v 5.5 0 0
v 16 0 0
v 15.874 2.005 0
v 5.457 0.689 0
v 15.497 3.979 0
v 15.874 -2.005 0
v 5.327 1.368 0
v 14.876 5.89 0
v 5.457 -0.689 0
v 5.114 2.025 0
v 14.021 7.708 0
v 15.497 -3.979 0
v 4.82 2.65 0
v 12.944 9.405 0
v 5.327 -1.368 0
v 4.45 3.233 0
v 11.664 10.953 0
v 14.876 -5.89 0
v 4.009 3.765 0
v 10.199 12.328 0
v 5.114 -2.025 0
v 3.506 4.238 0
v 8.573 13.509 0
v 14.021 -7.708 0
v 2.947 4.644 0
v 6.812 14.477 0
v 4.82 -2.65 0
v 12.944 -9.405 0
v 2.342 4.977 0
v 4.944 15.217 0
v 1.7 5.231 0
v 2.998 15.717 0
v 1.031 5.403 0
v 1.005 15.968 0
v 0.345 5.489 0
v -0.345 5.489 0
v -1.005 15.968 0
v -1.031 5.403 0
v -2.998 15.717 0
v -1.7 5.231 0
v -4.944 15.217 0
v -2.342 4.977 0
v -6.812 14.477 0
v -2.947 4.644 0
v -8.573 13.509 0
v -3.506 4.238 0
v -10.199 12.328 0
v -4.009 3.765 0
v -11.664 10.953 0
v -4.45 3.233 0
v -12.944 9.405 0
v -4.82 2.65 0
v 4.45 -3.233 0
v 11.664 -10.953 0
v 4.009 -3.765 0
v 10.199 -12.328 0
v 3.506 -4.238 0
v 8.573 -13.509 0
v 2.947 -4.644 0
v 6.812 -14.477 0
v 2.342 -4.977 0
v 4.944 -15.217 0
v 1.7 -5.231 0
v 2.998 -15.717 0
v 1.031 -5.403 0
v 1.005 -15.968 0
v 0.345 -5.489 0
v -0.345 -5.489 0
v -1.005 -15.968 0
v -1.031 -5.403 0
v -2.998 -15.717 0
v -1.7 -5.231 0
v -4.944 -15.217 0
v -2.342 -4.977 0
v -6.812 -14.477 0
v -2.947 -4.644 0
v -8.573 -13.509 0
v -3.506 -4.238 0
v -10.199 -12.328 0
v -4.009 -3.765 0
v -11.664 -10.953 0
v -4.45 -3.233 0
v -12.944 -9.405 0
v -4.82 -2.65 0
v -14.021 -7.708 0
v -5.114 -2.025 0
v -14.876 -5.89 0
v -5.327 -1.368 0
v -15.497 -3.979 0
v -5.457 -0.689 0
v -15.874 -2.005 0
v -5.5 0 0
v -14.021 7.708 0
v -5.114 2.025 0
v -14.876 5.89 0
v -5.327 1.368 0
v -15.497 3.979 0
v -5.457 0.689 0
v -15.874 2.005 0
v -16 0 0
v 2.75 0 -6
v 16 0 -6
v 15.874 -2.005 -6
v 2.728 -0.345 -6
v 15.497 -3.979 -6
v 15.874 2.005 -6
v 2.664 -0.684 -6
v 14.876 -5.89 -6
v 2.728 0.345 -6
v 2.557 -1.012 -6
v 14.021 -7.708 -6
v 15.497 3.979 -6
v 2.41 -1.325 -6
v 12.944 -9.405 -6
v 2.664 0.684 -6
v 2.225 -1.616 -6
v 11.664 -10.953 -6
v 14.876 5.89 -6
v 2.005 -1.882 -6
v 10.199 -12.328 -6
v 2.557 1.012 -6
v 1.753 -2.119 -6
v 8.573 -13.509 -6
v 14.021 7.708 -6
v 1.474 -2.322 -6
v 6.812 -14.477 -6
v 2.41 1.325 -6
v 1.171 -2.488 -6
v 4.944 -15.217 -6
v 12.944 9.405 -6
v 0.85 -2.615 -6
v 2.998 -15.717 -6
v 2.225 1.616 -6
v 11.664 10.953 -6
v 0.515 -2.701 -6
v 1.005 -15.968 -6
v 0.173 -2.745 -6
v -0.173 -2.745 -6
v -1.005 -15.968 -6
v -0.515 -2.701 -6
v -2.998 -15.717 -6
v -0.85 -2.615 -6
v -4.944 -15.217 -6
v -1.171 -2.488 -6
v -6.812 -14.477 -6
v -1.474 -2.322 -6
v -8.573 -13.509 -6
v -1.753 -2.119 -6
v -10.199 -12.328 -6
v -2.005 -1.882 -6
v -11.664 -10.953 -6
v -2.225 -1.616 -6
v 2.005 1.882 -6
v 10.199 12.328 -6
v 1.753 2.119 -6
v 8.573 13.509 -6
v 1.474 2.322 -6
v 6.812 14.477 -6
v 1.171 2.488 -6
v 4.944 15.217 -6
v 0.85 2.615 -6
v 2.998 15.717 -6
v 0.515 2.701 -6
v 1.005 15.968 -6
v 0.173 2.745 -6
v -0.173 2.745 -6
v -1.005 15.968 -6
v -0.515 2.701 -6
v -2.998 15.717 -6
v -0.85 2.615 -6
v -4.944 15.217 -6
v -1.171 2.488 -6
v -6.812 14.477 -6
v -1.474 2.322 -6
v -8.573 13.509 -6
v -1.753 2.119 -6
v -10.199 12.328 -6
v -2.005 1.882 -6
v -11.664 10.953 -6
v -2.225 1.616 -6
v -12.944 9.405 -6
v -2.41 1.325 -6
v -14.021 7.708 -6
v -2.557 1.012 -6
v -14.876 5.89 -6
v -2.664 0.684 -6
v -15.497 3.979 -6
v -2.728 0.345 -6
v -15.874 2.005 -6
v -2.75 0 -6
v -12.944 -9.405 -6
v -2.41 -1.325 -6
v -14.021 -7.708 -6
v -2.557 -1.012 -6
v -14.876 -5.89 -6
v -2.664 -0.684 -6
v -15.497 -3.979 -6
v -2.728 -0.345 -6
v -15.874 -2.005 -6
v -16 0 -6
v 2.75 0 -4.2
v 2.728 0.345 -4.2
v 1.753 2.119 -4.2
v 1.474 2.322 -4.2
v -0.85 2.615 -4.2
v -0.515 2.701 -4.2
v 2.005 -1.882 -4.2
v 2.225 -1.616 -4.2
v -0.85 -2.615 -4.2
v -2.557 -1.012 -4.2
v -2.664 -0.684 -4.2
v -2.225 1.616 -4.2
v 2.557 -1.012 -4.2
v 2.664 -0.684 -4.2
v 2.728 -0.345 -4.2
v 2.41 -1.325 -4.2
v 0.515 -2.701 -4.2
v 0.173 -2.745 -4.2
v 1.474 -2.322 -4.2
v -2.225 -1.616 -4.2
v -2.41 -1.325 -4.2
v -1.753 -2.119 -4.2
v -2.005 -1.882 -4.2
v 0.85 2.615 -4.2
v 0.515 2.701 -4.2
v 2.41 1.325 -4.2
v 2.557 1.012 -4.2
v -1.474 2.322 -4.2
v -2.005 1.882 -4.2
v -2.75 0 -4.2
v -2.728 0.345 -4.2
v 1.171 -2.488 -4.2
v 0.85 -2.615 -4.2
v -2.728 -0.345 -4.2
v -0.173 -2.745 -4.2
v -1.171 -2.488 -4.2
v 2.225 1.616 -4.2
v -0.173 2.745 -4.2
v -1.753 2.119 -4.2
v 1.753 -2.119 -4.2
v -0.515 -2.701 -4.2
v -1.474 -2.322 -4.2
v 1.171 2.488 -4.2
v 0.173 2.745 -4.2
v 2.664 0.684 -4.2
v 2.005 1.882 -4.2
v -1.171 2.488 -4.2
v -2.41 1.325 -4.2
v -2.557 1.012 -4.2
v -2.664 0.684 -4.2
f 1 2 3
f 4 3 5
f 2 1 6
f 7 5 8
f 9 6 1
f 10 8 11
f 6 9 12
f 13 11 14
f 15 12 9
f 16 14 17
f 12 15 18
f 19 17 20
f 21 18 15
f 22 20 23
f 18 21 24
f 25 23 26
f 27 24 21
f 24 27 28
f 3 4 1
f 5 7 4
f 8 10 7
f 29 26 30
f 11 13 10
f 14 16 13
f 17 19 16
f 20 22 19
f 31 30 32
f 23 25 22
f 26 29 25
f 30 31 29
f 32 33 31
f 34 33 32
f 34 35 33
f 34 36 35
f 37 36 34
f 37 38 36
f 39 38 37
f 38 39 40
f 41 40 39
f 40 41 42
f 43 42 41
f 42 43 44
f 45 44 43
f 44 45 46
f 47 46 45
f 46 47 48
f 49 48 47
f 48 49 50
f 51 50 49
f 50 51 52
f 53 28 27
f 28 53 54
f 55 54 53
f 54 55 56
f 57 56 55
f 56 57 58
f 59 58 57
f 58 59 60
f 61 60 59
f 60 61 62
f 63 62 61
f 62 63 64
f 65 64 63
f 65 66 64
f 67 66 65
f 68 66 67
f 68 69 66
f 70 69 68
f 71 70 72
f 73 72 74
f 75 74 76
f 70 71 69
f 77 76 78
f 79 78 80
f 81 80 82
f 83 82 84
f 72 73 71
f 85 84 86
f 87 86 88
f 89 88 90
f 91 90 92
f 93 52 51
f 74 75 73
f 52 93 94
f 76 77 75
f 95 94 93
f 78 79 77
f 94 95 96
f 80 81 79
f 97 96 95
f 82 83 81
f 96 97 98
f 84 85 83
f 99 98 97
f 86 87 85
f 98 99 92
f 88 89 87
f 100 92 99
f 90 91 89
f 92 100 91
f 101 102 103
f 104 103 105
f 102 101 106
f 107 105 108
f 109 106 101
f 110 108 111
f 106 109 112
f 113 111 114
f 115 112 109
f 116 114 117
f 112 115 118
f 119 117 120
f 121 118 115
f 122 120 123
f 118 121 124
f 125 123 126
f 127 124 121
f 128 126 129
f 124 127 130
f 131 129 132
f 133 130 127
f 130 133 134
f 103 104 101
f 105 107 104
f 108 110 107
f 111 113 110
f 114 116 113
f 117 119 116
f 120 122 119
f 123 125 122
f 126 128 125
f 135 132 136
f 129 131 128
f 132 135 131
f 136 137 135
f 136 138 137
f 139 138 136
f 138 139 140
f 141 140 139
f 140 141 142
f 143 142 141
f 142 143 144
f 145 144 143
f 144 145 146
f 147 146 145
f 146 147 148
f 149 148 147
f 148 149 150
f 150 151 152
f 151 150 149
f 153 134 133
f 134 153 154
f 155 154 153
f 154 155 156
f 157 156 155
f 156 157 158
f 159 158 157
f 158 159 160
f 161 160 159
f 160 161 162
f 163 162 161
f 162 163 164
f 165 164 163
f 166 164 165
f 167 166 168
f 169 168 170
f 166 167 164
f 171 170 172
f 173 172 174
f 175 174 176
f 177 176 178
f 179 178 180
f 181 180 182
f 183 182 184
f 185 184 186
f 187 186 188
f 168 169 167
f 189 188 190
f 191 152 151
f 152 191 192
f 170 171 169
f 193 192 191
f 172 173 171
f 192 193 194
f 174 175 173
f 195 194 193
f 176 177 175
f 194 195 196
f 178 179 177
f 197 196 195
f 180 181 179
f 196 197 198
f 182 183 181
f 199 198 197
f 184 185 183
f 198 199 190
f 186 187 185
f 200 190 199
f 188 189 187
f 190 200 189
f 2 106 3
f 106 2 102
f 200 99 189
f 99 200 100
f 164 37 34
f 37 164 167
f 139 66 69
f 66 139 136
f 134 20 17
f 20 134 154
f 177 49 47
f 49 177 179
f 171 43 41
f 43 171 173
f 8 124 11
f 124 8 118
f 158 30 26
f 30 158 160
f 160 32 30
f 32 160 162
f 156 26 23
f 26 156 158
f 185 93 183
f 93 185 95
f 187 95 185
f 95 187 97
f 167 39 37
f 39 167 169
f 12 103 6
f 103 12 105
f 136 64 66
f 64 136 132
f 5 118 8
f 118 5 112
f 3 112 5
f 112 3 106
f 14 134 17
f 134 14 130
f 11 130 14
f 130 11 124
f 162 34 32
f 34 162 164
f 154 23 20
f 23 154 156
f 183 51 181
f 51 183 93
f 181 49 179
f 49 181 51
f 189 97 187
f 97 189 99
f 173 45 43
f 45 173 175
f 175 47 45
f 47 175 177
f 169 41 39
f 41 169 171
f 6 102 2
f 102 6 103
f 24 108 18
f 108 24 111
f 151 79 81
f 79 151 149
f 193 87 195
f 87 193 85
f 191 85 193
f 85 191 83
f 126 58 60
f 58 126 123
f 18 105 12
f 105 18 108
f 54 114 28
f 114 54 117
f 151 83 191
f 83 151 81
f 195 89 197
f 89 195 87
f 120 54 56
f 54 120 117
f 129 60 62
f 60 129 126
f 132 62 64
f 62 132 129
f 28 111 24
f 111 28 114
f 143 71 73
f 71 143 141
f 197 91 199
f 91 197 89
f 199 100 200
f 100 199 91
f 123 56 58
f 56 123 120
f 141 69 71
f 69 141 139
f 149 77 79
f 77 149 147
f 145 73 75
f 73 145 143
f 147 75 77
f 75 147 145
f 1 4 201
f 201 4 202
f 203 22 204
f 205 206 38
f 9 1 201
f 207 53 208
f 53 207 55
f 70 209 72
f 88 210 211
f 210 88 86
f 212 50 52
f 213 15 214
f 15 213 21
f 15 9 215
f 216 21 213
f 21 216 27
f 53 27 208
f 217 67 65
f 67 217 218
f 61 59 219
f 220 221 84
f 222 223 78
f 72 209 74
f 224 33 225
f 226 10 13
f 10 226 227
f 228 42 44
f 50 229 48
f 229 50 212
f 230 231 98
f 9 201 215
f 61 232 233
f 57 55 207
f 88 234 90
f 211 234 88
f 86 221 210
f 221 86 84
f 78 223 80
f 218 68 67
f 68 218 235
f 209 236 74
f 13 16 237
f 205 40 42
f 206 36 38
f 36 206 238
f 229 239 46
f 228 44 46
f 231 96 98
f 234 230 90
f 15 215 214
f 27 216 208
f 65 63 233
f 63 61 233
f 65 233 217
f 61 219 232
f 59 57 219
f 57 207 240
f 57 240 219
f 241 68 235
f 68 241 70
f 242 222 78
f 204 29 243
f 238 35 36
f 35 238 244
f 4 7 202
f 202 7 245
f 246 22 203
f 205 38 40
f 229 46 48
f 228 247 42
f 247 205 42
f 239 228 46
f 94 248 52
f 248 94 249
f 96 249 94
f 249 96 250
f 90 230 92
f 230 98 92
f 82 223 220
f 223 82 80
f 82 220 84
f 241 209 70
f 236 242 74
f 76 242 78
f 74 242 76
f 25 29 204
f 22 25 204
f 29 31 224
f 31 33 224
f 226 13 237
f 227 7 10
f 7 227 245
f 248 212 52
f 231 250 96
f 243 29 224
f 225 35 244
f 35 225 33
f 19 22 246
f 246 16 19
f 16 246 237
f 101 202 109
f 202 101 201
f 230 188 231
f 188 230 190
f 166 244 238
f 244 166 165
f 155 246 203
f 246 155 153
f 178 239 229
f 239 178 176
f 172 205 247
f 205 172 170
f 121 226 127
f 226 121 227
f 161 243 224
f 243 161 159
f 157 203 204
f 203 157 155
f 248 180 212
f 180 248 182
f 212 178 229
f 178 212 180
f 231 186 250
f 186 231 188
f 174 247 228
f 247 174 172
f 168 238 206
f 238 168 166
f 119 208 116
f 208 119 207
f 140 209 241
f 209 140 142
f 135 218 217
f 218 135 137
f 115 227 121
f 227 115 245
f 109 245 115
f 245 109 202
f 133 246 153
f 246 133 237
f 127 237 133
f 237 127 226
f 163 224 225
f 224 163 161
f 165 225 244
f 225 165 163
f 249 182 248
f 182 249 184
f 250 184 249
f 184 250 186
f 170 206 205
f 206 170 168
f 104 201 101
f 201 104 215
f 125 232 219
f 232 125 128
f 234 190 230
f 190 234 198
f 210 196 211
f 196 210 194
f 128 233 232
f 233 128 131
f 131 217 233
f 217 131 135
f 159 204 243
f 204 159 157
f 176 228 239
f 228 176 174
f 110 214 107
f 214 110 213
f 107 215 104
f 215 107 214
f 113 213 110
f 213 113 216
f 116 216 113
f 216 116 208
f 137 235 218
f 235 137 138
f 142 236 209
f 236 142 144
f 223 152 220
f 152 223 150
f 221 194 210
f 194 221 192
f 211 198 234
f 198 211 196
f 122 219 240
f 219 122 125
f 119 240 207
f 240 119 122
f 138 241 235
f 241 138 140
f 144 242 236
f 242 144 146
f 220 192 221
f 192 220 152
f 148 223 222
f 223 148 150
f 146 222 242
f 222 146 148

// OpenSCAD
$fn = 50;


difference() {
	union() {
		translate(v = [0, 0, -6.0000000000]) {
			cylinder(h = 6, r = 10.0000000000);
		}
		translate(v = [0, 0, -6.0000000000]) {
			cylinder(h = 6, r = 16.0000000000);
		}
	}
	union() {
		translate(v = [0, 0, 0]) {
			rotate(a = [0, 0, 0]) {
				difference() {
					union() {
						#translate(v = [0, 0, -6.0000000000]) {
							cylinder(h = 6, r = 2.2500000000);
						}
						#translate(v = [0, 0, -4.2000000000]) {
							cylinder(h = 4.2000000000, r1 = 2.7500000000, r2 = 5.5000000000);
						}
						#translate(v = [0, 0, -6.0000000000]) {
							cylinder(h = 6, r = 2.7500000000);
						}
						#translate(v = [0, 0, -6.0000000000]) {
							cylinder(h = 6, r = 2.2500000000);
						}
					}
					union();
				}
			}
		}
	}
}
